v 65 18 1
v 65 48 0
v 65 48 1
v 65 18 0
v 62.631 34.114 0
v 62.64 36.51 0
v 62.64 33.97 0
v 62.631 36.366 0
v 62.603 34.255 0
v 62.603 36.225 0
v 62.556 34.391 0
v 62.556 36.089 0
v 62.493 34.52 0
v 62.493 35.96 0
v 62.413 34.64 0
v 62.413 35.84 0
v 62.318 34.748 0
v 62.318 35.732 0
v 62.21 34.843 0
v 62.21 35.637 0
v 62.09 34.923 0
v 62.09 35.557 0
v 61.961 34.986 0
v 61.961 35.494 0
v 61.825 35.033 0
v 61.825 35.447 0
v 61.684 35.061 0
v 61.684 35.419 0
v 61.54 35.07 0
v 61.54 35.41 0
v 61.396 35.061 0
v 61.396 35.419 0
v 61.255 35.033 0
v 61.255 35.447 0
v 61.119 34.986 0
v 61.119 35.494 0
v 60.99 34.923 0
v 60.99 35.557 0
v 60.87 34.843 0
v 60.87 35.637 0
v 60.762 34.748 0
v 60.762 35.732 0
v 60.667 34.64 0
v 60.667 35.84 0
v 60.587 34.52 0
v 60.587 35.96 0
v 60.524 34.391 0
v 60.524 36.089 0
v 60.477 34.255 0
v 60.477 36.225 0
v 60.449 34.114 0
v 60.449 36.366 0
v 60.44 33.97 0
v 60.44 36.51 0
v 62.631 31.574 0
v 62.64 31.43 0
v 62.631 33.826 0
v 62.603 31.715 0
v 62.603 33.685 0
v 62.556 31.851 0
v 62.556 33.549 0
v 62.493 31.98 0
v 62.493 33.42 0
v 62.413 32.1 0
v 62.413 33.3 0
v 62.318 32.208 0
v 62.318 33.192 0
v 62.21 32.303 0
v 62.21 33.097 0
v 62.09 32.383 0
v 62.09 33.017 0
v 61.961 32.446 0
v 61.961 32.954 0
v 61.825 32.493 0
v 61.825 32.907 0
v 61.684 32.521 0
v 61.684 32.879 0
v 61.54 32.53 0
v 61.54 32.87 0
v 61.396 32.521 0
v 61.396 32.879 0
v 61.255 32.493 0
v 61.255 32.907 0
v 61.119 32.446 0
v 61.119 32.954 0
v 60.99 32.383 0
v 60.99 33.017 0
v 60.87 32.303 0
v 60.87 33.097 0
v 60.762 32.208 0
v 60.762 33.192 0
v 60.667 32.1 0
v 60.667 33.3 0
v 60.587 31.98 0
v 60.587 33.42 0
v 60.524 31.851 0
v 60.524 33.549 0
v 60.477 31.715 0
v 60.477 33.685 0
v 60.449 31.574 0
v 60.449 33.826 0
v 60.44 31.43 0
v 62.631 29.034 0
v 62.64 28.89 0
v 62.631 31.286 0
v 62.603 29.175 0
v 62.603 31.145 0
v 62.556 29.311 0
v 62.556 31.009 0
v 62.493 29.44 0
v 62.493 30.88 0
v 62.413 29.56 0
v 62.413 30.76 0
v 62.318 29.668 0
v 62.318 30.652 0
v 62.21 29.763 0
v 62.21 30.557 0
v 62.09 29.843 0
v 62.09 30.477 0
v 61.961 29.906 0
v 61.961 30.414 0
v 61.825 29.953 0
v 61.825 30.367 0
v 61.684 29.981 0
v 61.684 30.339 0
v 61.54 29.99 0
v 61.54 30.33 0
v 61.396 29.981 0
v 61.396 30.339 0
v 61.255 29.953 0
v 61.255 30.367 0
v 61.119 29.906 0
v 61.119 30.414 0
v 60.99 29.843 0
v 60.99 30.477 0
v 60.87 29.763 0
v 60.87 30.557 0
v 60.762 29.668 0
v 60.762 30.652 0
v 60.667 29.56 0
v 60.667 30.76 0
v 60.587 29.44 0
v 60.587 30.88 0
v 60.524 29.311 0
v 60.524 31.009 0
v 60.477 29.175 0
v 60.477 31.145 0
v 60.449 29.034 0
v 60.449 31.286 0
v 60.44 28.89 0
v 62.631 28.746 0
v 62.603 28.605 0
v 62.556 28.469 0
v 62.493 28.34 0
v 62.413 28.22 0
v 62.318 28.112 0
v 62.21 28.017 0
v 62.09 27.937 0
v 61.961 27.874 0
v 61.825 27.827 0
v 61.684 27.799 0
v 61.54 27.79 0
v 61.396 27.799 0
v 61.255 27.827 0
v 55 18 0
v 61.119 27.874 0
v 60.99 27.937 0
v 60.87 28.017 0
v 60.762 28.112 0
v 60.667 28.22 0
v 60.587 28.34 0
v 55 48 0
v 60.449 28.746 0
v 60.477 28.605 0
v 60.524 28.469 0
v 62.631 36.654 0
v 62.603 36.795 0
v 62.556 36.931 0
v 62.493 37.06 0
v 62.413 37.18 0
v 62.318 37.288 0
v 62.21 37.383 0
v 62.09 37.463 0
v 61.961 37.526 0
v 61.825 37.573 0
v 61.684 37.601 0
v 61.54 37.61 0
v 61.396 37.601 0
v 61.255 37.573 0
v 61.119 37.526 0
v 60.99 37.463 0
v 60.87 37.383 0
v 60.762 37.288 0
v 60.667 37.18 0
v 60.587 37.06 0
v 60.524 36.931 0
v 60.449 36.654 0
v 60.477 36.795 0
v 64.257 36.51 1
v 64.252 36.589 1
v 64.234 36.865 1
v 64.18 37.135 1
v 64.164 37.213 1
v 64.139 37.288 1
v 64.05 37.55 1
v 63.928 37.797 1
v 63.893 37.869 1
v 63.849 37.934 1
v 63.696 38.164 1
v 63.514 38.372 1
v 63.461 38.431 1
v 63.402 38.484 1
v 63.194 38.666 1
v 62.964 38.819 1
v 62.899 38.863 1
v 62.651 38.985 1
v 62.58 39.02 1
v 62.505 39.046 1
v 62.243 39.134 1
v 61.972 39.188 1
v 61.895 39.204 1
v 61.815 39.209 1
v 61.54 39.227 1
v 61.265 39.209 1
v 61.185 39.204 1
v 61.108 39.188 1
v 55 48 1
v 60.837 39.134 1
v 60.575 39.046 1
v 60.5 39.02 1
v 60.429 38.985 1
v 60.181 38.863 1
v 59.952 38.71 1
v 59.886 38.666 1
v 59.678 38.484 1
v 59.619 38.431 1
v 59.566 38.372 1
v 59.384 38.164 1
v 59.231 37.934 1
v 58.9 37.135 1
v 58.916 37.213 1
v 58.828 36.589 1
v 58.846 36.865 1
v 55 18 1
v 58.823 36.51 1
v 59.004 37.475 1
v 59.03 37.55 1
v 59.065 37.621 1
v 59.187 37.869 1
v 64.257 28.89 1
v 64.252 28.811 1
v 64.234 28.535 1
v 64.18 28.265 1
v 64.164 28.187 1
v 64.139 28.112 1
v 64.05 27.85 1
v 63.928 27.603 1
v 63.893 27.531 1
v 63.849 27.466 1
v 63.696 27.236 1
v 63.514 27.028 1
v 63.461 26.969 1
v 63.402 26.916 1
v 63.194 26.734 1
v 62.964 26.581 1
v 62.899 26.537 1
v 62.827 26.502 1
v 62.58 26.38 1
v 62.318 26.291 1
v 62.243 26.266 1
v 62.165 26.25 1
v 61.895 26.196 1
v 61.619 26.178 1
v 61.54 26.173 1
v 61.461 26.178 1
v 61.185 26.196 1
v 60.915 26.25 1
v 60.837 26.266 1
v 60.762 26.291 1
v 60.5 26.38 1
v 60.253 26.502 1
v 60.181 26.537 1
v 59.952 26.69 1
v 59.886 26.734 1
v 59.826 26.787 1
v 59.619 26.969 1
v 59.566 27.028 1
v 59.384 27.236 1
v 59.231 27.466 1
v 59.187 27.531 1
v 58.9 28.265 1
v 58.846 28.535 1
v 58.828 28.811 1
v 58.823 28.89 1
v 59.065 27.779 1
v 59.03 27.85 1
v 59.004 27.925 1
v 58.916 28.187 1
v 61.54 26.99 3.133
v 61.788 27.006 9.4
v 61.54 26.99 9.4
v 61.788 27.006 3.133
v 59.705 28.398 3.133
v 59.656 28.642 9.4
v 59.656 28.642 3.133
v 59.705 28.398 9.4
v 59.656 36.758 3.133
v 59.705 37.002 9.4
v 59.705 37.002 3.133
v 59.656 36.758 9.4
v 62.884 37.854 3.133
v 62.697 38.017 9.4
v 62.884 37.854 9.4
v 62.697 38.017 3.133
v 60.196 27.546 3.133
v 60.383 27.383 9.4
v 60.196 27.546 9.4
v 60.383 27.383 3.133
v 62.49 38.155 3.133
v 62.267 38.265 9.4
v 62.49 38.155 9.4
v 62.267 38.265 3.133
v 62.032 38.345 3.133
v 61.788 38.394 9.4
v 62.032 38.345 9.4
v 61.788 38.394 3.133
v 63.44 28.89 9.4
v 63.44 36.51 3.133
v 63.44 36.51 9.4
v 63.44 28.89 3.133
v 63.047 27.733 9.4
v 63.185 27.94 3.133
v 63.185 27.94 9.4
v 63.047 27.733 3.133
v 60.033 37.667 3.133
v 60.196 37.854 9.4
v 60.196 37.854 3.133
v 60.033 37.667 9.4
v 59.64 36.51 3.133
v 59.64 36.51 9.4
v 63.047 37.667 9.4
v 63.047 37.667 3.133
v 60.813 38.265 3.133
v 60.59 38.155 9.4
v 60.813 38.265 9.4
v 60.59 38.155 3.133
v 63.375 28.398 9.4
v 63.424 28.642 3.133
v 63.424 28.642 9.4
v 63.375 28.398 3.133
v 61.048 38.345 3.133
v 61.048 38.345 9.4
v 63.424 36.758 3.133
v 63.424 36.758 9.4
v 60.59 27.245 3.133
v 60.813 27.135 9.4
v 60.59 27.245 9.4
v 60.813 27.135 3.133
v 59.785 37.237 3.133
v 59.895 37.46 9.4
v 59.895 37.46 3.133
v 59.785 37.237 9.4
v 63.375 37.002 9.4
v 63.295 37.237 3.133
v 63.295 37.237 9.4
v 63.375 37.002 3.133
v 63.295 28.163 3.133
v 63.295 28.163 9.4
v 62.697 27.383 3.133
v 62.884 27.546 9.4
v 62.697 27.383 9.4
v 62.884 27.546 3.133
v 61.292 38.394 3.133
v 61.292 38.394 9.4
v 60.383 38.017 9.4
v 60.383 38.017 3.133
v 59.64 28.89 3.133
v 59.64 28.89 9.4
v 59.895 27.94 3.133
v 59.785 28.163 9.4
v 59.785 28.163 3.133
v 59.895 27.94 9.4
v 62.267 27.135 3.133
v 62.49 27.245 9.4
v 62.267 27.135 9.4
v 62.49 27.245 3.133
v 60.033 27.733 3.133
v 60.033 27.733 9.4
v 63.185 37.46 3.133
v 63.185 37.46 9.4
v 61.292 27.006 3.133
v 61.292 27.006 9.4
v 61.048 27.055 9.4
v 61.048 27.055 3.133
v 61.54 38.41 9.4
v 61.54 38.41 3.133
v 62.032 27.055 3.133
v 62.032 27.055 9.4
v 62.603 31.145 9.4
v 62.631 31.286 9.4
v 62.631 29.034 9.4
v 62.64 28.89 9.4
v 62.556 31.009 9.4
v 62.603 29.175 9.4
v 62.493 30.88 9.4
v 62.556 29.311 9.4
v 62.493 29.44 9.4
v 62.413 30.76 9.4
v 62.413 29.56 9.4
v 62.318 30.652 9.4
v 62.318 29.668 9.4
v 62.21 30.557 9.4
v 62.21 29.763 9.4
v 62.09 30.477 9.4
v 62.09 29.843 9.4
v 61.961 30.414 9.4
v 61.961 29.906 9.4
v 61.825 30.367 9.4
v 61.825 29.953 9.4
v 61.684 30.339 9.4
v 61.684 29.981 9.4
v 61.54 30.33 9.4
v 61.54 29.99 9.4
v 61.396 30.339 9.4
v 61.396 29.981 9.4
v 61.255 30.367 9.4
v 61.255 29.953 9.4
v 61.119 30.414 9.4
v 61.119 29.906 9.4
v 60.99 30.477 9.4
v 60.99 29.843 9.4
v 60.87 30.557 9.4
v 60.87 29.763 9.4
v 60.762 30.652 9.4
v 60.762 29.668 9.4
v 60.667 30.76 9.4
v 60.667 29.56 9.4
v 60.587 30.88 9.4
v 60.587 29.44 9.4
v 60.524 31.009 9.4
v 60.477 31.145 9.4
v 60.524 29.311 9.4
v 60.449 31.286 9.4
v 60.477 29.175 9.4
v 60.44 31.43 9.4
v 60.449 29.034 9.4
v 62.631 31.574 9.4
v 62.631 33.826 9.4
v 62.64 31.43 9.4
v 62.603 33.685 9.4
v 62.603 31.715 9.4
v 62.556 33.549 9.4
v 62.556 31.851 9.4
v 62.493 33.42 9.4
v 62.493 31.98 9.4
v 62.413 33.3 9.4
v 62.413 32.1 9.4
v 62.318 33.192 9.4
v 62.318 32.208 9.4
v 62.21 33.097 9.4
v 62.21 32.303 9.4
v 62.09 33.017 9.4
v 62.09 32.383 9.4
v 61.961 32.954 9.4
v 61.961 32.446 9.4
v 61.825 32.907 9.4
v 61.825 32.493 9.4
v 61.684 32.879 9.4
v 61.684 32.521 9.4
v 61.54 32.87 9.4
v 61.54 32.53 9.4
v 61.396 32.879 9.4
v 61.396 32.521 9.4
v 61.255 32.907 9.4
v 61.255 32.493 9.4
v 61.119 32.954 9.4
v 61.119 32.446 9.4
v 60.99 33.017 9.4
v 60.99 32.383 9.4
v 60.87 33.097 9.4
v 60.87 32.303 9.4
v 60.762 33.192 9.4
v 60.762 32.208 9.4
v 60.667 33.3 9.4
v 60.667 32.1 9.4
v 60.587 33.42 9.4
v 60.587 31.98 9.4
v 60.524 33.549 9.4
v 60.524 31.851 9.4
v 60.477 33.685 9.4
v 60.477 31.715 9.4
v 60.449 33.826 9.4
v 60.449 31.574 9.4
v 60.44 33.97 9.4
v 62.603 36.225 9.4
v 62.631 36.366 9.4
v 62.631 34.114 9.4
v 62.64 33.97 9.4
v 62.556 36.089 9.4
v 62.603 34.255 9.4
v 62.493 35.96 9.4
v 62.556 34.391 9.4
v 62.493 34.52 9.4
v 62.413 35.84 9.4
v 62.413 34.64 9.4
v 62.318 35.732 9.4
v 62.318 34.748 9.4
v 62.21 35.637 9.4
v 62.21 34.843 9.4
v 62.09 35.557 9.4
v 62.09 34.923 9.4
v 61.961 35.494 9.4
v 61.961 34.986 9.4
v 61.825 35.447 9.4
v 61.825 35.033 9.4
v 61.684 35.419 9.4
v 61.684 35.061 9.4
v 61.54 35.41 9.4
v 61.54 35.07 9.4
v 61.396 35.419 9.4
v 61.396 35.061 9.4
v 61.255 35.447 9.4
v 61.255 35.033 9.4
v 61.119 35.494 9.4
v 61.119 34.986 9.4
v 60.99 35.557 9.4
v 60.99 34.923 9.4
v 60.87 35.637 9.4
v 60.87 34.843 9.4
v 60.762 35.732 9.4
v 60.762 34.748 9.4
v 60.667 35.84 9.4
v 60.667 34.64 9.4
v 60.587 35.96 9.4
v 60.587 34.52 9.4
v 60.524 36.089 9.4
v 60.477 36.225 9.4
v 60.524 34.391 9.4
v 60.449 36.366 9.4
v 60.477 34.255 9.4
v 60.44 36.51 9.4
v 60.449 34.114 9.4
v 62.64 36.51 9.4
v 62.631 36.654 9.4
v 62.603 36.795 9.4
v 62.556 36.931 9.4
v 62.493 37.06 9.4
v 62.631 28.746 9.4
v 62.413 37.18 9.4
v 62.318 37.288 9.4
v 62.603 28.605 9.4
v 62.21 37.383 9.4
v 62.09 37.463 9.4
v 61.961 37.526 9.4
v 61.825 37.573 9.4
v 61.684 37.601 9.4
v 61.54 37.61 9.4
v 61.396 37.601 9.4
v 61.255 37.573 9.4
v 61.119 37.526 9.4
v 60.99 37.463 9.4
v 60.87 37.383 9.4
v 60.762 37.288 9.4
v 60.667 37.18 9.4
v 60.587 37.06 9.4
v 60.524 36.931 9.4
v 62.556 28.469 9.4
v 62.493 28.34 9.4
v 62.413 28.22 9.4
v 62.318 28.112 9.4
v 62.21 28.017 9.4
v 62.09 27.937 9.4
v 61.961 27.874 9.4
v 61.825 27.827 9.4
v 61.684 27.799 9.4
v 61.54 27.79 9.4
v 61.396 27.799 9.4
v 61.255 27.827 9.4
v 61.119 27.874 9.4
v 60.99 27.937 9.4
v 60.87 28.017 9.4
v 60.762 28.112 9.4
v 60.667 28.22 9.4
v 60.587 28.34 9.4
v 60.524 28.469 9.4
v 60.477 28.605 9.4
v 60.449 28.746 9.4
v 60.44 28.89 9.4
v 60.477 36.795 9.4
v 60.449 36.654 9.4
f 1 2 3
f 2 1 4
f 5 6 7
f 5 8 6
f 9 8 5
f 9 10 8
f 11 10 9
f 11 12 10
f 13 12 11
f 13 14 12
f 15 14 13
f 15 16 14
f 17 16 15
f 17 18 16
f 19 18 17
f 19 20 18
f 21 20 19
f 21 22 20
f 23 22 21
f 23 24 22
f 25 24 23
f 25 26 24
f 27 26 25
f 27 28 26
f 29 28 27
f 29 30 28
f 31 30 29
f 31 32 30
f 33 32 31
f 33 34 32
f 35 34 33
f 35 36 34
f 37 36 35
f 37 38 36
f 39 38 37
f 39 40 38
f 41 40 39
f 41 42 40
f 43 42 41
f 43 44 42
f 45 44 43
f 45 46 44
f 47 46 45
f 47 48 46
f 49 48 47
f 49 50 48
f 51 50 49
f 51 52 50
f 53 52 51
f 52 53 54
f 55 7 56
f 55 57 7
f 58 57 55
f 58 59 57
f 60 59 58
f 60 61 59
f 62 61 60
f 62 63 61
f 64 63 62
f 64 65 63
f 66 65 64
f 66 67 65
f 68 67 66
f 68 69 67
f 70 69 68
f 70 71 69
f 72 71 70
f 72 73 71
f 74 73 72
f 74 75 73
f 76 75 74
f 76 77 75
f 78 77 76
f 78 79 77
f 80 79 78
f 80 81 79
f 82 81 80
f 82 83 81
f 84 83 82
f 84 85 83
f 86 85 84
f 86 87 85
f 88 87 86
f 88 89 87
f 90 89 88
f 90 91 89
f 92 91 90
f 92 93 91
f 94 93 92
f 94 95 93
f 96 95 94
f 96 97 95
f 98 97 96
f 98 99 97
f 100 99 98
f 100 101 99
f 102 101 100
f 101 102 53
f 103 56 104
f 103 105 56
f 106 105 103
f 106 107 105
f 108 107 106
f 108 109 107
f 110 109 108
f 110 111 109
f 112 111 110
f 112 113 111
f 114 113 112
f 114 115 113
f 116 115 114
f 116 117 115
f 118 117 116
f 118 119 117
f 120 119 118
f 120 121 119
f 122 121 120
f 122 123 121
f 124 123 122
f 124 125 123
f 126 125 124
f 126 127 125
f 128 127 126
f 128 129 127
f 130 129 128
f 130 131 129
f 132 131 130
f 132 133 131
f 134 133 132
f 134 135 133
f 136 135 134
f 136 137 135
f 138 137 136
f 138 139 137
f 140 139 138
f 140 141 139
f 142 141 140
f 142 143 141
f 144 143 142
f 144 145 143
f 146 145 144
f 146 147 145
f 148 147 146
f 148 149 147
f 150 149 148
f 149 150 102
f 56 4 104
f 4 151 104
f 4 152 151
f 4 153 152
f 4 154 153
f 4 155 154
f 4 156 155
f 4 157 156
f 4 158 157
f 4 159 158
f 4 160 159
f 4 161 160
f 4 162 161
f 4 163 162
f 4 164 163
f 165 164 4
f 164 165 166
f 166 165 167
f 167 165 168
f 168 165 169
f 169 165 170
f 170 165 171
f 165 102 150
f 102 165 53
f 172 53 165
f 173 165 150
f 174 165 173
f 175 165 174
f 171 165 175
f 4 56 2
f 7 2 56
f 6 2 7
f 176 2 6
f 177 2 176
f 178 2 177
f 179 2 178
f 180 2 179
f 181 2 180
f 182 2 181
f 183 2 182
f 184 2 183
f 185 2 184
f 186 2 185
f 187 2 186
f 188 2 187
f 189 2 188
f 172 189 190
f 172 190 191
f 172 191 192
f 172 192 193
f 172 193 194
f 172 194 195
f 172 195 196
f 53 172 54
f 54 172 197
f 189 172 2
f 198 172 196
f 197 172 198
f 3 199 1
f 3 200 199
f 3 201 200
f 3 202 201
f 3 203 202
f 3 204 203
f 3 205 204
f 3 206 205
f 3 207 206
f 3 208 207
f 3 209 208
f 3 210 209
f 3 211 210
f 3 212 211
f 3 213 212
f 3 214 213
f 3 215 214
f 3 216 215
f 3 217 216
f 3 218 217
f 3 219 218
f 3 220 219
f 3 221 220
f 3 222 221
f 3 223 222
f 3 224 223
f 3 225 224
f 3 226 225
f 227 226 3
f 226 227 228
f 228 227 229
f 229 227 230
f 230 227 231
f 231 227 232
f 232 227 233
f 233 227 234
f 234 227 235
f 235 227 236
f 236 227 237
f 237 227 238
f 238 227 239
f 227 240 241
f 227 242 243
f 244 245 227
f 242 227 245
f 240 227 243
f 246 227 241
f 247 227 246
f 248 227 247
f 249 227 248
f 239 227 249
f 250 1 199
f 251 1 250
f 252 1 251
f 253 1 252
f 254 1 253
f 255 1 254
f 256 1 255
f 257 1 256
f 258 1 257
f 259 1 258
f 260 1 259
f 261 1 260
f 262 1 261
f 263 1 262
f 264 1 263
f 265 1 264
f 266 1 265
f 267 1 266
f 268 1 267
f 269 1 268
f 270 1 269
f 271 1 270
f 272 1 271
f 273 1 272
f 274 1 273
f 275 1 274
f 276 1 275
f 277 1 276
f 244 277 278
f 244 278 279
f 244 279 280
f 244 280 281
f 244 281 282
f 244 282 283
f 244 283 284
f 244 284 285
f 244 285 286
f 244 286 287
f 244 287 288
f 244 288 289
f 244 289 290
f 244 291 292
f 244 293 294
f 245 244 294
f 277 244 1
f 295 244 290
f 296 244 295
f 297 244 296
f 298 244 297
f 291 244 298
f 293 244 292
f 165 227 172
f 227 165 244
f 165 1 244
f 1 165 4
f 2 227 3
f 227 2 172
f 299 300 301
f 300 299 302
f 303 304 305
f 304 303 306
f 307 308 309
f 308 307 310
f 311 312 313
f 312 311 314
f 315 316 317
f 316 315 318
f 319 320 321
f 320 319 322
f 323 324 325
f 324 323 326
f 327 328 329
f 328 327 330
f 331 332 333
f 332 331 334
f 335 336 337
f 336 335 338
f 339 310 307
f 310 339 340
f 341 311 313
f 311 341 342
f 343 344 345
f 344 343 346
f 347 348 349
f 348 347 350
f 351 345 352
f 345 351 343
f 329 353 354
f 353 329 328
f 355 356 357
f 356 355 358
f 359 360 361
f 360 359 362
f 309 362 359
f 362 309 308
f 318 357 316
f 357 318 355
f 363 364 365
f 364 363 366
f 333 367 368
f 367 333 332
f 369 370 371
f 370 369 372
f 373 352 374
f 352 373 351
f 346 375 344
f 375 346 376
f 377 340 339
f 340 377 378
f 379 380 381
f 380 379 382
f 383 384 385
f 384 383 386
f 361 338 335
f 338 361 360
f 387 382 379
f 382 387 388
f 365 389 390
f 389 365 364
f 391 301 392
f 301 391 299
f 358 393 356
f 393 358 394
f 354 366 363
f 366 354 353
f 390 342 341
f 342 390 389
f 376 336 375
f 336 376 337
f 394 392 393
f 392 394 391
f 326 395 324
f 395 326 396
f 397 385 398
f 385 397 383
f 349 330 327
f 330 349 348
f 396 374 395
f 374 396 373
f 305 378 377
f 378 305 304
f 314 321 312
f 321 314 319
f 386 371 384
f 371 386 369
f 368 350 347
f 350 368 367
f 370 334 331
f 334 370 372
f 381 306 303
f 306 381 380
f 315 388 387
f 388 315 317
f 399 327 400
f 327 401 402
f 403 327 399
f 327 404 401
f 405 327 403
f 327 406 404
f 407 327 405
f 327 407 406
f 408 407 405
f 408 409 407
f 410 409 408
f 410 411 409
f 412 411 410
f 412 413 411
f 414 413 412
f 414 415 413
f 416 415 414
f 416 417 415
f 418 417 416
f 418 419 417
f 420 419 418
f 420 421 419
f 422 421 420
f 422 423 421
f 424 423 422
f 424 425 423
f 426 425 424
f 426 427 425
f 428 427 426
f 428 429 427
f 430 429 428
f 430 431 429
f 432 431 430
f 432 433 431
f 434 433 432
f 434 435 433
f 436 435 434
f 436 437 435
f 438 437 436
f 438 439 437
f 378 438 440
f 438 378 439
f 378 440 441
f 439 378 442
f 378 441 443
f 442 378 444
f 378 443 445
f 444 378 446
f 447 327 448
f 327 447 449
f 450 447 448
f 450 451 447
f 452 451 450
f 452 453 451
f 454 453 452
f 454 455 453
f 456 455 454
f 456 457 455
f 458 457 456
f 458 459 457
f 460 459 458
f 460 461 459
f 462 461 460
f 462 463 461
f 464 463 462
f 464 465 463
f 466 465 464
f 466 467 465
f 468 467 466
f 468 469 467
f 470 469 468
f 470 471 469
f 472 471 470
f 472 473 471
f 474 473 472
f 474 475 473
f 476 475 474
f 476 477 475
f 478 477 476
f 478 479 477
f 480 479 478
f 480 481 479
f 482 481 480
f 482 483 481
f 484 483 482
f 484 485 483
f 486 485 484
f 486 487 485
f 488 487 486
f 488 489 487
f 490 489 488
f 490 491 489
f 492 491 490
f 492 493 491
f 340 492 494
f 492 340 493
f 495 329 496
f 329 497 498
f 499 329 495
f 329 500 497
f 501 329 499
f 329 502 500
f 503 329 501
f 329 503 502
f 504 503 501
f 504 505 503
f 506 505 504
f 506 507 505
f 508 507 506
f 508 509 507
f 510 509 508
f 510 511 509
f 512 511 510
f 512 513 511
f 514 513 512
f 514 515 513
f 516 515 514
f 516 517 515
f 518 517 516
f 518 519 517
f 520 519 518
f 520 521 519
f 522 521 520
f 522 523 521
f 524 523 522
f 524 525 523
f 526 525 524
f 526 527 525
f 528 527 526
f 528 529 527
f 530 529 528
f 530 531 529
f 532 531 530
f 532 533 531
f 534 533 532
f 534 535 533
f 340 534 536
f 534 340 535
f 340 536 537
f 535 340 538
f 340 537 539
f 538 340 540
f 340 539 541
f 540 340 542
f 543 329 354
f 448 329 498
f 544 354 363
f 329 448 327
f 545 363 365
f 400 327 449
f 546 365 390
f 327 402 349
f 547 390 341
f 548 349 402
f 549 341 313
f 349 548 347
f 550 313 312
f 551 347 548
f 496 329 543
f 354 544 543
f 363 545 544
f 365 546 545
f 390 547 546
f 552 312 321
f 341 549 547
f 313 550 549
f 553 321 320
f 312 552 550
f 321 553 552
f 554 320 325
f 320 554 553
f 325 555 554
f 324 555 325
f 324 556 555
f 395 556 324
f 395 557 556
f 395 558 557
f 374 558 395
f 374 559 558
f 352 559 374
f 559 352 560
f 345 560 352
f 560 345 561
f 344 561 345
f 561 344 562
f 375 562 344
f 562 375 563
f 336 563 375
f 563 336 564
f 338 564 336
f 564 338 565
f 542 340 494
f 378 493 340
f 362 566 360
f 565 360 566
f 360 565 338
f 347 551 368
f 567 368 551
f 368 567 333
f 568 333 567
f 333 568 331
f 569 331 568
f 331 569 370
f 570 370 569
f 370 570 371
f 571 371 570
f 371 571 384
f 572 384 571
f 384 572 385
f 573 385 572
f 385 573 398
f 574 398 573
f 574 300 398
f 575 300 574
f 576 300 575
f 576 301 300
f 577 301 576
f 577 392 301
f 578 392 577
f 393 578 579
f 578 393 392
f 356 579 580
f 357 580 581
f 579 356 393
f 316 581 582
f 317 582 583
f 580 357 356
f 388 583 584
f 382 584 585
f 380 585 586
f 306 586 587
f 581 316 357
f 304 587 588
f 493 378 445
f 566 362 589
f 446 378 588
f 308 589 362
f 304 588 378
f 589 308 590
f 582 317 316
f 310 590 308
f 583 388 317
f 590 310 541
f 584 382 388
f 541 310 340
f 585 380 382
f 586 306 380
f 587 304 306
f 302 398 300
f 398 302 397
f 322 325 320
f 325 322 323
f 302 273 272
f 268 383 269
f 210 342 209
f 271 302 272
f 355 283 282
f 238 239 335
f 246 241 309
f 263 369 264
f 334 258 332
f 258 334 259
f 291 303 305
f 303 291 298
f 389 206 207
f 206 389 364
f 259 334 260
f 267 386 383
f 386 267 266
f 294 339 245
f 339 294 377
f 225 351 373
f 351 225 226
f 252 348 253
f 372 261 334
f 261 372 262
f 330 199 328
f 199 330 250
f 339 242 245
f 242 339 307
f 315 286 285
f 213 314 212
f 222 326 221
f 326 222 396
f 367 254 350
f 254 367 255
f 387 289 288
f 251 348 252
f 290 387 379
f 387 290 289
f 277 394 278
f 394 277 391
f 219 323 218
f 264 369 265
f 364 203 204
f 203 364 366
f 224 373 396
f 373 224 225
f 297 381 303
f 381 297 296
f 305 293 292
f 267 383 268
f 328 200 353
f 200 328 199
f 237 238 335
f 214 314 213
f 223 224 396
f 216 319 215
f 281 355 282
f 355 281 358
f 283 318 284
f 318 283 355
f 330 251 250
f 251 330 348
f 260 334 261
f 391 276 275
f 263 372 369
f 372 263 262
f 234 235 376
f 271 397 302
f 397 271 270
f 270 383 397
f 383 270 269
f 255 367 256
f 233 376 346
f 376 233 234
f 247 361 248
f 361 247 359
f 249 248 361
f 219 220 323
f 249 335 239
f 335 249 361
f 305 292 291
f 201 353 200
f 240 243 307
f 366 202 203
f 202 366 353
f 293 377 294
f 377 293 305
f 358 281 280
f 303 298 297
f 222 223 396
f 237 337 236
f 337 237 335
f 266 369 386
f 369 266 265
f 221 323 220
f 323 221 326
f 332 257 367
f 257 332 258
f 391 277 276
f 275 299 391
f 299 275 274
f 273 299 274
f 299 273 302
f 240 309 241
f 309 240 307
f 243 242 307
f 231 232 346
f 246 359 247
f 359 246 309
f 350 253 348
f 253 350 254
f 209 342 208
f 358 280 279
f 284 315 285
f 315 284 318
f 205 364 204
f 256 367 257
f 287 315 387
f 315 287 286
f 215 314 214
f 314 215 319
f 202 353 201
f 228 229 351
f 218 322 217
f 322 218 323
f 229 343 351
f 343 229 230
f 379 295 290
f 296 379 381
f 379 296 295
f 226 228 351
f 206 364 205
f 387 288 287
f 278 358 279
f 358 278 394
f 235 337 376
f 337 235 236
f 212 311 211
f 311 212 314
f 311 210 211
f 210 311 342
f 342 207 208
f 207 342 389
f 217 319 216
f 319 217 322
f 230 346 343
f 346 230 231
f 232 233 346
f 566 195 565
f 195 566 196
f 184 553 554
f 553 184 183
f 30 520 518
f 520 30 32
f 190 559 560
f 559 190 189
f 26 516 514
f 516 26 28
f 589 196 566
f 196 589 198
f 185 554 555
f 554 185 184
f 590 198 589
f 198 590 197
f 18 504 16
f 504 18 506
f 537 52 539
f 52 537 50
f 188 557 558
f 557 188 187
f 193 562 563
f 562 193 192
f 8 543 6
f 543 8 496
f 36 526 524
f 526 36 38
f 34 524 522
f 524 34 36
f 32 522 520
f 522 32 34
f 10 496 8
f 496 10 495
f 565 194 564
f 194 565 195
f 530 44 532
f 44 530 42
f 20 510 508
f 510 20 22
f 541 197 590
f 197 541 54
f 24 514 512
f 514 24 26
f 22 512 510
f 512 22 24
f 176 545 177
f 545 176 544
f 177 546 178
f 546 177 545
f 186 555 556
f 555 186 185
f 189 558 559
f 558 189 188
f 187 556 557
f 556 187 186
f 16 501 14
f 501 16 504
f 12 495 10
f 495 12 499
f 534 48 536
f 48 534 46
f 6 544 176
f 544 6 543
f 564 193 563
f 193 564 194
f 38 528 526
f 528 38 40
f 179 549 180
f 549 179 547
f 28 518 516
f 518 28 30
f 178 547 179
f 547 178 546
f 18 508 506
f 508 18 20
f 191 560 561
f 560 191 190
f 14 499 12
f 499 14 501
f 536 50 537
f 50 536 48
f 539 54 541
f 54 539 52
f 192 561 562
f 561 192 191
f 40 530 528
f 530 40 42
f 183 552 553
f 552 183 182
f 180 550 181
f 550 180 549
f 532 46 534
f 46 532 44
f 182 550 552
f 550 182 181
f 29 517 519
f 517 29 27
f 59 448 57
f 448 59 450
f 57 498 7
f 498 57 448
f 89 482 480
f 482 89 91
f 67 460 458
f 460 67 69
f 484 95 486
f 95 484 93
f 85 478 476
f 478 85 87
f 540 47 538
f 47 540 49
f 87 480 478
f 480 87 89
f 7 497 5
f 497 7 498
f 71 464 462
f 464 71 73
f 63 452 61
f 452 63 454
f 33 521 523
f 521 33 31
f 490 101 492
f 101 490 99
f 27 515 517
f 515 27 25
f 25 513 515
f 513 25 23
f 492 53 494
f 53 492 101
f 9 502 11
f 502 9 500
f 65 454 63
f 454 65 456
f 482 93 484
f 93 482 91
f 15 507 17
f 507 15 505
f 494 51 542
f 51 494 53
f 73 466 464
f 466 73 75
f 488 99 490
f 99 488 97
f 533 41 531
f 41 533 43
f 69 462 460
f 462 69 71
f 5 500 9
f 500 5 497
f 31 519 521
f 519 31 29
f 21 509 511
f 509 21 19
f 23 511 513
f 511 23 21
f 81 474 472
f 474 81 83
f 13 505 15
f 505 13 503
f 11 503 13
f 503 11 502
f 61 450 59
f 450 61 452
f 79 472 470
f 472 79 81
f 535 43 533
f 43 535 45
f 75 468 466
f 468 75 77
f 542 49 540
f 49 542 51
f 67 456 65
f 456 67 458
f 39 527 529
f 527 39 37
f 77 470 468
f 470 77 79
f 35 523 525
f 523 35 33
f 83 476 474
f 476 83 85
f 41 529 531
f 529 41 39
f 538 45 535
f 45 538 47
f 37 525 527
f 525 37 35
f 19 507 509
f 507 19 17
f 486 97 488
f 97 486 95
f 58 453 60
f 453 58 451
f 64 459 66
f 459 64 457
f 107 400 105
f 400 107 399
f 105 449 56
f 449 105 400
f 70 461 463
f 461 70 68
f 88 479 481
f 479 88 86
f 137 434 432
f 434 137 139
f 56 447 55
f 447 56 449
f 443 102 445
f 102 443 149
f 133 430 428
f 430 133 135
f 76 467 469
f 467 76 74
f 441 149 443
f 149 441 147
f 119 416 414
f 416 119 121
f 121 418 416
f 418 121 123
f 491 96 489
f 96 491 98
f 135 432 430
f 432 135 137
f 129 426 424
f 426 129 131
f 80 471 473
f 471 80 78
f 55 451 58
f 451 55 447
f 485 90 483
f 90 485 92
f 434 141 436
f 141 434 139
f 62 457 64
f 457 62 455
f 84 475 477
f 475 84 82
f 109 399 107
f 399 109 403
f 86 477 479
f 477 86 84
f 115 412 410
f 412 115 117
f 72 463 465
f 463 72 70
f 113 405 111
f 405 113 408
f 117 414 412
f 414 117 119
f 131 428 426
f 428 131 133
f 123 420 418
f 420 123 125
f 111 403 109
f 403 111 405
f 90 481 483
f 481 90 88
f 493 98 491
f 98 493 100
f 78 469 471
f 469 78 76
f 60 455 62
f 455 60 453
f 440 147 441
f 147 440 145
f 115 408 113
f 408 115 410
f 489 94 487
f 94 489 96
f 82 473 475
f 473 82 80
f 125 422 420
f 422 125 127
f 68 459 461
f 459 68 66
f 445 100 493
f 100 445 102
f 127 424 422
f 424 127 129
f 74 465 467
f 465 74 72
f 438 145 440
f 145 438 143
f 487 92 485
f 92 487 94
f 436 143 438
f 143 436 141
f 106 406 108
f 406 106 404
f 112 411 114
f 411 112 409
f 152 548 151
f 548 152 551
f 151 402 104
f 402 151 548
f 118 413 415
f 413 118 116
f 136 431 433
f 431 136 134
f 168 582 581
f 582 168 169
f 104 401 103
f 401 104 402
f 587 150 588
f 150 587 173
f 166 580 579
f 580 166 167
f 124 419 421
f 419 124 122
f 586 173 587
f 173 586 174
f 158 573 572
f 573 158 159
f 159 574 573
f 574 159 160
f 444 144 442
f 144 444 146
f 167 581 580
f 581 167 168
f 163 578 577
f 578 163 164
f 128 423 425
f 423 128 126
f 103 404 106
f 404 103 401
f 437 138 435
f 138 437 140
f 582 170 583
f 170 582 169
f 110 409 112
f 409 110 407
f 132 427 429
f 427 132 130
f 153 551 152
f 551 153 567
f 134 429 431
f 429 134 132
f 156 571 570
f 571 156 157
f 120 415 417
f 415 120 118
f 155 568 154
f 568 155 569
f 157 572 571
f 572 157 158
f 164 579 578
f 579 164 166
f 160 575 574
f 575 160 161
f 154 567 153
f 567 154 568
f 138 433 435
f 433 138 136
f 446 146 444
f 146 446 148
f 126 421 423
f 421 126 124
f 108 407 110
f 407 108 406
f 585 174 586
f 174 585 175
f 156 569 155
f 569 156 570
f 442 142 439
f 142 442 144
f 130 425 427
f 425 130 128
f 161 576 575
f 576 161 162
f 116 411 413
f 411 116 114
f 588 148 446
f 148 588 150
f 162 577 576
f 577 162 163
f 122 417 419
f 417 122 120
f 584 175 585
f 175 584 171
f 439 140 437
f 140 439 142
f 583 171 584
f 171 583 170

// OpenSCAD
// file: button.scad
e=.001;

w=6;
d=7;
height=10;
thickness=.8;

use <sculpt.scad>;

module button_carveout(w, d, thickness, height, top_width=2, top_height=3, gap=0.5, flex_thickness=0.2)
{
rotate([0,0,180])
translate([0,(d-top_width)/2,-height])
linear_extrude(height+e)
	translate([-w/2-gap, -d/2-gap])
	square([w+2*gap, d+gap]);

}

module button_shape(w, d, thickness, height, top_width=2, top_height=3, gap=0.5, flex_thickness=0.2)
{

h=height-thickness;

rotate([0,0,180])
union()
{

translate([0,(d-top_width)/2,-thickness])
difference()
{
	linear_extrude(thickness)
	translate([-w/2, -d/2])
	square([w, d+e]);

	for (i=[d/2-gap, -gap])
	translate([-w/2-gap, i, -e])
	cube([w+2*gap, gap, thickness-flex_thickness+e]);
}

translate([0,(d-top_width)/2,-thickness+e])
{

translate([0,-d/2+thickness,0])
	rotate([90,0,0])
	linear_extrude(thickness)
	polygon([ [-w/2,0], [w/2, 0], [top_width/2, -h-e], [-top_width/2, -h-e]]);


for (i=[-w/2-gap-thickness-e, w/2+gap+e])
translate([i,0,0])
rotate([90,0,90])
	linear_extrude(thickness)
	polygon([ [-d/2, e], [d/2, e], [-d/2+top_width, -h-e], [-d/2, -h-e]]);

translate([-top_width/2,0,0])
rotate([90,0,90])
	linear_extrude(top_width)
	polygon([ [-d/2, -h-e+top_height], [-d/2+top_width, -h-e], [-d/2, -h-e]]);


translate([-w/2-gap-e,-d/2,-h])
	cube([w+(gap+e)*2, top_width, flex_thickness]);

}

}
}

module button(w, d, thickness, height, top_width=2, top_height=3, gap=0.5, flex_thickness=0.2)
{
	sculpt()
	{
		sculpt_base_carve()
			button_carveout(w, d, thickness, height, top_width, top_height, gap, flex_thickness);

		sculpt_add()
			button_shape(w, d, thickness, height, top_width, top_height, gap, flex_thickness);
	}
}

module flip()
{
	rotate([180,0,0]) children();
}

pitch=4*2.54;


flip()
sculpt()
{
	sculpt_base()
	translate([-20,-10, -thickness])
	cube([40,20,thickness]);

	for (i=[-pitch,0,pitch])
	translate([i,0,0])
	button(w, d, thickness, height);
}
// file: grid.scad
module bars(width, height, n, pitch, bar_width)
{
	for (i=[0:n-1])
		translate([0, (i-(n-1)/2)*pitch-bar_width/2, 0])
			cube([width, bar_width, height]);
}

module grid(width, depth, height, n_rows, n_cols, pitch=10, x_pitch=-1, y_pitch=-1, bar_width=1, x_bar_width=-1, y_bar_width=-1)
{
	x_pitch = x_pitch > 0 ? x_pitch : pitch;
	y_pitch = y_pitch > 0 ? y_pitch : pitch;
	x_bar_width = x_bar_width > 0 ? x_bar_width : bar_width;
	y_bar_width = y_bar_width > 0 ? y_bar_width : bar_width;

	translate( [0, depth/2, 0] )
		bars( width, height, n_rows, y_pitch, y_bar_width );
	translate( [width/2, 0, 0] )
		rotate([0,0,90])
			bars( depth, height, n_cols, x_pitch, x_bar_width) ;
}

grid(100, 50, 1, 4, 8);
// file: usb.scad
e=.001;
$fn=48;

usb_c_depth = 7.35;
usb_c_width = 8.45;
usb_c_height = 2.56;
usb_c_z = .25;
usb_c_edge_radius = .93;
usb_c_front_from_origin = 6.77-3.13;
usb_c_plug_end = 1.77-3.13;

usb_c_plug_depth = 7;
usb_c_plug_width = 8;
usb_c_plug_height = 2;

usb_c_plug_shroud_width = 12.5;
usb_c_plug_shroud_height = 6.25;
usb_c_plug_shroud_depth = 15;
usb_c_plug_shroud_radius = .5;

usb_a_depth = 10;
usb_a_width = 13.2;
usb_a_height = 5.7;
usb_a_edge_radius = .5;
usb_a_z = 1.;
usb_a_overlap = .65;
usb_a_plastic_depth = 4.5;
usb_a_plastic_width = 14.5;
usb_a_plastic_height = 4;
usb_a_plastic_z = usb_a_z + 1.;



usb_a_plug_depth = 12.5;
usb_a_plug_width = 12.1;
usb_a_plug_height = 4.5;
usb_a_plug_radius = .5;
usb_a_plug_end = -8;

usb_a_plug_shroud_width = 16;
usb_a_plug_shroud_height = 8;
usb_a_plug_shroud_depth = 25;
usb_a_plug_shroud_radius = .5;

module rounded_rect(w, h, r, center=false)
{
	off_x = center ? w/2 : 0 ;
	off_y = center ? h/2 : 0 ;
	hull()
	{
		for (x=[r,w-r])
		for (y=[r,h-r])
		translate([off_x+x,off_y+y])
		circle(r=r);
	}
}

module usb_c_keepout()
{
	color([.9,.9,.9])
	{
		translate([-10, -9.2/2.+1.25, 0])
		cube([20, 9.2-2.5, 3.2]);

		for (y=[-9.2/2.+1.25, 9.2/2.-1.25])
		translate([-10, y, 1.6])
		rotate([0,90,0])
		scale([1.6,1.25,1])
		cylinder(h=20, r=1);
	}
}

module usb_c_plug(margin=0)
{
	color([.97,.97,.97])
	translate([-usb_c_plug_width/2-margin,
	            usb_c_plug_depth+margin,
	           -usb_c_plug_height/2-margin ])
	rotate([90,0,0])
	linear_extrude(usb_c_plug_depth+2*margin+e) rounded_rect(usb_c_plug_width+2*margin, usb_c_plug_height+2*margin, usb_c_plug_height/2+margin);

	color([.3,.3,.3])
	translate([-usb_c_plug_shroud_width/2-margin,
	            usb_c_plug_depth+usb_c_plug_shroud_depth+margin,
	           -usb_c_plug_shroud_height/2-margin ])
	rotate([90,0,0])
	linear_extrude(usb_c_plug_shroud_depth+2*margin+e) rounded_rect(usb_c_plug_shroud_width+2*margin, usb_c_plug_shroud_height+2*margin, usb_c_plug_shroud_radius+margin);
}

module usb_c_type_c31_m12(margin=0)
{
	translate([0,0,usb_c_z])
	{
		color([.9,.9,.9])
		translate([-usb_c_width/2-margin,usb_c_front_from_origin+margin,-margin ])
		rotate([90,0,0])
		linear_extrude(usb_c_depth+2*margin) rounded_rect(usb_c_width+2*margin, usb_c_height+2*margin, usb_c_edge_radius+margin);

		translate([0,usb_c_plug_end,usb_c_height/2])
		children();
	}
}


module usb_a_shou_han(margin=0)
{
	color([.9,.9,.9])
	translate([-usb_a_width/2-margin,usb_a_overlap+margin,usb_a_z -margin ])
	rotate([90,0,0])
	linear_extrude(usb_a_depth+2*margin) rounded_rect(usb_a_width+2*margin, usb_a_height+2*margin, usb_a_edge_radius+margin);

	color([.1,.1,.1])
	translate([-usb_a_plastic_width/2-margin,usb_a_overlap+margin-usb_a_depth+usb_a_plastic_depth+e,usb_a_plastic_z -margin ])
	rotate([90,0,0])
	cube([usb_a_plastic_width+2*margin, usb_a_plastic_height+2*margin, usb_a_plastic_depth+2*margin]);

	translate([0,usb_a_plug_end/*+8.65*/,usb_a_height/2+usb_a_z])
	children();
}


module usb_a_plug(margin=0)
{
	color([.97,.97,.97])
	translate([-usb_a_plug_width/2-margin,
	            usb_a_plug_depth+margin,
	           -usb_a_plug_height/2-margin ])
	rotate([90,0,0])
	linear_extrude(usb_a_plug_depth+2*margin+e) rounded_rect(usb_a_plug_width+2*margin, usb_a_plug_height+2*margin, usb_a_plug_radius+margin);

	color([.3,.3,.3])
	translate([-usb_a_plug_shroud_width/2-margin,
            usb_a_plug_depth+usb_a_plug_shroud_depth+margin,
           -usb_a_plug_shroud_height/2-margin ])
	rotate([90,0,0])
	linear_extrude(usb_a_plug_shroud_depth+2*margin+e) rounded_rect(usb_a_plug_shroud_width+2*margin, usb_a_plug_shroud_height+2*margin,usb_a_plug_shroud_radius+margin);
}

translate([20,0,0])usb_c_type_c31_m12(margin=0) usb_c_plug(margin=0);
usb_a_shou_han(margin=0) usb_a_plug(margin=0);
// file: sculpt.scad
module sculpt()
{
	if (!is_undef($_sculpt))
		children();
	else
	difference()
	{
		union()
		{
			difference()
			{
				union()
				{
					$_sculpt = "base";
					children();
				}
				union()
				{
					$_sculpt = "base_carve";
					children();
				}
			}
			union()
			{
				$_sculpt = "add";
				children();
			}
		}
		union()
		{
			$_sculpt = "carve";
			children();
		}
	}
}

module sculpt_base()
{
	if ($_sculpt == "base")
	{
		$_sculpt = undef;
		children();
	}
}

module sculpt_add()
{
	if ($_sculpt == "add")
	{
		$_sculpt = undef;
		children();
	}
}

module sculpt_carve()
{
	if ($_sculpt == "carve")
	{
		$_sculpt = undef;
		children();
	}
}

module sculpt_base_carve()
{
	if ($_sculpt == "base_carve")
	union()
	{
		$_sculpt = undef;
		children();
	}
}
// file: case_base.scad
e=.0001;
$fn=48;
padding=5;

use <sculpt.scad>
use <usb.scad>
use <grid.scad>
use <button.scad>

has_buttons=true;
has_dfu_button=true;
has_leds=true;

hole_dist_x = 70;
hole_dist_y = 40;

inner_radius = 4;
pcb_radius = 3.5;
pcb_thickness = 1.6;
wall_thickness = 1;
bottom_thickness = .8;
top_thickness = .8;
total_height = 16;
button_height=2;
led_height = 1.2;

top_edge_height = 2.5;
top_edge_thickness = 1.;
top_edge_margin = 0.;

leg_height = 3;
leg_thickness = 1;

funnel_top_radius = 3;
funnel_top_height = 3;

usb_c_board_offset=2.5 ;

/* (countersunk) screw specs */
thread = 3;
head_diameter = 6;
head_thickness = 2.5;
screw_clearance = .25;

button_pitch=4*2.54;
button_w=5;
button_d=5;
n_buttons=3;

outer_radius = inner_radius+wall_thickness;
screw_grab_radius = (thread*0.9)/2;
screw_loose_radius = (thread/0.9)/2;
funnel_top_inner_radius = funnel_top_radius-leg_thickness;
component_z = bottom_thickness+leg_height+pcb_thickness;

button_depth = total_height-component_z-button_height;

dfu_button_pos = [ 63, 40 ];
dfu_button_angle = 0;

grid_rows = 4;
grid_cols = 6;
grid_pitch = 10;
grid_width = .8;
grid_height_bottom = 1;
grid_height_top = 2;

light_pipe_diameter = 2.2;
light_pipe_border = .8;
light_pipe_base_border = 2.;
light_pipe_depth = total_height-component_z-led_height;
light_pipe_base_height = light_pipe_depth/3;


function breadboard_pos(x, y) = [ hole_dist_x - 11 - 2.54*x, hole_dist_y/2 - (8.5-y)*2.54, component_z ];

module preview()
{
	if ($preview) children();
}

module on_pcb()
{
	translate([0,0,component_z]) children();
}

module usb_c(margin=0)
{
	translate([0,-usb_c_board_offset,0]) 
	usb_c_type_c31_m12(margin) usb_c_plug(margin);
}

module usb_c_keepout()
{
	sculpt()
	sculpt_carve()
	usb_c(margin=.5);
}

module at_front()
{
	translate([hole_dist_x+pcb_radius,hole_dist_y/2,0]) rotate([0,0,-90])  children();
}

module at_back()
{
	translate([-pcb_radius,hole_dist_y/2,0]) rotate([0,0,90])  children();
}

module at_top()
{
	translate([hole_dist_x/2,hole_dist_y+pcb_radius,0]) children();
}

module at_holes(x, y)
{
	for (x = [0, hole_dist_x])
		for (y = [0, hole_dist_y])
			translate([x,y,0])
				children();
}

module at_dfu_button()
{
	if (has_dfu_button)
		translate([ dfu_button_pos[0], dfu_button_pos[1], total_height ])
			rotate([0,0,dfu_button_angle])
				children();
}

module at_buttons()
{
	if (has_buttons)
		at_back()
			for (i=[0:n_buttons-1])
				translate([button_pitch*(i-(n_buttons-1)/2), -pcb_radius, total_height])
					children();
}

module at_light_pipes()
{
	if (has_leds)
	for (i=[0,1,2,3])
		translate( breadboard_pos(-1, 2+i) )
		translate( [0,0,led_height] )
			children();
}

module light_pipes()
{
	sculpt()
	{
		sculpt_add()
		hull()
		at_light_pipes()
		cylinder(light_pipe_depth, r=light_pipe_diameter/2+light_pipe_border);

		sculpt_add()
		hull()
		at_light_pipes()
		translate([0,0,light_pipe_depth-light_pipe_base_height])
		cylinder(light_pipe_base_height,
			r1=light_pipe_diameter/2+light_pipe_border,
			r2=light_pipe_diameter/2+light_pipe_base_border);

		sculpt_carve()
		at_light_pipes()
		translate([0,0,-e])
		cylinder(light_pipe_depth+2*e, r=light_pipe_diameter/2);

	}
}

module case_shape(height, radius)
{
	hull()
		at_holes()
			cylinder(height, r=radius);
}

module screw_shape(padding=0, bottom_epsilon=0, top_epsilon=0)
{
	x = head_diameter/2 - screw_loose_radius;
	y = head_thickness;
	dz = (sqrt(x*x+y*y)/x - y/x)*padding;

	x2 = funnel_top_inner_radius - screw_grab_radius;
	y2 = funnel_top_height;
	dz2 = (sqrt(x*x+y*y)/x - y/x)*padding;

	path = [
		[0, -e],
		[padding+head_diameter/2, -e],
		[padding+head_diameter/2, screw_clearance+dz],
		[padding+screw_loose_radius, screw_clearance+head_thickness+dz],
		[padding+screw_loose_radius, bottom_thickness+leg_height+e],
		[padding+screw_grab_radius, bottom_thickness+leg_height+e],
		[padding+screw_grab_radius, total_height-top_thickness-funnel_top_height-dz2],
		[padding+funnel_top_inner_radius, total_height-top_thickness+e],
		[0, total_height-top_thickness+e],

 ];

	rotate_extrude() polygon(path);
}

module leg()
{
	sculpt()
	{
		sculpt_add()
		intersection()
		{
			screw_shape(leg_thickness);
			translate([0,0,e]) cylinder(leg_height+bottom_thickness-e, r=leg_thickness+head_diameter/2+1); 
		}

		sculpt_carve()
		screw_shape(0, bottom_epsilon=-e);
	}
}

module screw_guide()
{
	sculpt()
	{
		sculpt_add()
		intersection()
		{
			screw_shape(leg_thickness);
			translate([0,0,component_z])
			cylinder(total_height-component_z-e, r=max(screw_loose_radius,funnel_top_inner_radius)+leg_thickness+1);
		}

		sculpt_carve()
		intersection()
		{
			screw_shape(leg_thickness);
			translate([0,0,e]) cylinder(leg_height-e, r=leg_thickness+head_diameter/2+1); 
		}

		sculpt_carve()
		screw_shape(0, bottom_epsilon=-e);
	}
}

module pcb()
{
	translate([0,0,bottom_thickness+leg_height])
		color("green")
			case_shape(pcb_thickness, pcb_radius);
}

module case()
{
	sculpt()
	{
		at_holes() leg();

		sculpt_base()
		{
			difference()
			{
				case_shape(total_height-top_thickness, outer_radius);
				translate([0,0,bottom_thickness])
				case_shape(total_height-top_thickness, inner_radius);
			}
			width = 2*outer_radius + hole_dist_x;
			depth = 2*outer_radius + hole_dist_y;

			translate([-outer_radius+e,-outer_radius+e,bottom_thickness-e])
			grid(width-e*2, depth-e*2, grid_height_bottom+e, grid_rows, grid_cols, grid_pitch, bar_width=grid_width);
		}
		on_pcb() at_front() usb_c_keepout();
	}
}

module top()
{
	sculpt()
	{
		sculpt_base()
		{
			difference()
			{
				union()
				translate([0,0,total_height-top_thickness])
				{
					case_shape(top_thickness, outer_radius);
					translate([0,0,-top_edge_height])
						case_shape(top_edge_height+top_thickness/2, inner_radius);
				}
				translate([0,0,total_height-top_thickness-top_edge_height-e])
					case_shape(top_edge_height+e, inner_radius-top_edge_thickness+e);
			}

			width = 2*inner_radius + hole_dist_x;
			depth = 2*inner_radius + hole_dist_y;

			translate([-inner_radius+e,-inner_radius+e,total_height-top_thickness-grid_height_top])
				grid(width-e*2, depth-e*2, grid_height_top+e, grid_rows, grid_cols, grid_pitch, bar_width=grid_width);
		}

		at_holes() screw_guide();

		children();
	}
}

module top_features()
{
	at_dfu_button() button(button_w, button_d, top_thickness, button_depth);
	at_buttons() button(button_w, button_d, top_thickness, button_depth);
	light_pipes();
}

module flip()
{
	translate([ 0, hole_dist_y, total_height]) rotate([180,0,0]) children();
}

module next()
{
	translate([ 0, hole_dist_y+2*outer_radius+padding, 0 ]) children();
}
// main file
include <case_base.scad>
include <sculpt.scad>

has_leds=true;
flip()
sculpt()
{
	sculpt_base()
	translate([55,-8,total_height-1])
		cube([10,30,1]);

	light_pipes();
}
